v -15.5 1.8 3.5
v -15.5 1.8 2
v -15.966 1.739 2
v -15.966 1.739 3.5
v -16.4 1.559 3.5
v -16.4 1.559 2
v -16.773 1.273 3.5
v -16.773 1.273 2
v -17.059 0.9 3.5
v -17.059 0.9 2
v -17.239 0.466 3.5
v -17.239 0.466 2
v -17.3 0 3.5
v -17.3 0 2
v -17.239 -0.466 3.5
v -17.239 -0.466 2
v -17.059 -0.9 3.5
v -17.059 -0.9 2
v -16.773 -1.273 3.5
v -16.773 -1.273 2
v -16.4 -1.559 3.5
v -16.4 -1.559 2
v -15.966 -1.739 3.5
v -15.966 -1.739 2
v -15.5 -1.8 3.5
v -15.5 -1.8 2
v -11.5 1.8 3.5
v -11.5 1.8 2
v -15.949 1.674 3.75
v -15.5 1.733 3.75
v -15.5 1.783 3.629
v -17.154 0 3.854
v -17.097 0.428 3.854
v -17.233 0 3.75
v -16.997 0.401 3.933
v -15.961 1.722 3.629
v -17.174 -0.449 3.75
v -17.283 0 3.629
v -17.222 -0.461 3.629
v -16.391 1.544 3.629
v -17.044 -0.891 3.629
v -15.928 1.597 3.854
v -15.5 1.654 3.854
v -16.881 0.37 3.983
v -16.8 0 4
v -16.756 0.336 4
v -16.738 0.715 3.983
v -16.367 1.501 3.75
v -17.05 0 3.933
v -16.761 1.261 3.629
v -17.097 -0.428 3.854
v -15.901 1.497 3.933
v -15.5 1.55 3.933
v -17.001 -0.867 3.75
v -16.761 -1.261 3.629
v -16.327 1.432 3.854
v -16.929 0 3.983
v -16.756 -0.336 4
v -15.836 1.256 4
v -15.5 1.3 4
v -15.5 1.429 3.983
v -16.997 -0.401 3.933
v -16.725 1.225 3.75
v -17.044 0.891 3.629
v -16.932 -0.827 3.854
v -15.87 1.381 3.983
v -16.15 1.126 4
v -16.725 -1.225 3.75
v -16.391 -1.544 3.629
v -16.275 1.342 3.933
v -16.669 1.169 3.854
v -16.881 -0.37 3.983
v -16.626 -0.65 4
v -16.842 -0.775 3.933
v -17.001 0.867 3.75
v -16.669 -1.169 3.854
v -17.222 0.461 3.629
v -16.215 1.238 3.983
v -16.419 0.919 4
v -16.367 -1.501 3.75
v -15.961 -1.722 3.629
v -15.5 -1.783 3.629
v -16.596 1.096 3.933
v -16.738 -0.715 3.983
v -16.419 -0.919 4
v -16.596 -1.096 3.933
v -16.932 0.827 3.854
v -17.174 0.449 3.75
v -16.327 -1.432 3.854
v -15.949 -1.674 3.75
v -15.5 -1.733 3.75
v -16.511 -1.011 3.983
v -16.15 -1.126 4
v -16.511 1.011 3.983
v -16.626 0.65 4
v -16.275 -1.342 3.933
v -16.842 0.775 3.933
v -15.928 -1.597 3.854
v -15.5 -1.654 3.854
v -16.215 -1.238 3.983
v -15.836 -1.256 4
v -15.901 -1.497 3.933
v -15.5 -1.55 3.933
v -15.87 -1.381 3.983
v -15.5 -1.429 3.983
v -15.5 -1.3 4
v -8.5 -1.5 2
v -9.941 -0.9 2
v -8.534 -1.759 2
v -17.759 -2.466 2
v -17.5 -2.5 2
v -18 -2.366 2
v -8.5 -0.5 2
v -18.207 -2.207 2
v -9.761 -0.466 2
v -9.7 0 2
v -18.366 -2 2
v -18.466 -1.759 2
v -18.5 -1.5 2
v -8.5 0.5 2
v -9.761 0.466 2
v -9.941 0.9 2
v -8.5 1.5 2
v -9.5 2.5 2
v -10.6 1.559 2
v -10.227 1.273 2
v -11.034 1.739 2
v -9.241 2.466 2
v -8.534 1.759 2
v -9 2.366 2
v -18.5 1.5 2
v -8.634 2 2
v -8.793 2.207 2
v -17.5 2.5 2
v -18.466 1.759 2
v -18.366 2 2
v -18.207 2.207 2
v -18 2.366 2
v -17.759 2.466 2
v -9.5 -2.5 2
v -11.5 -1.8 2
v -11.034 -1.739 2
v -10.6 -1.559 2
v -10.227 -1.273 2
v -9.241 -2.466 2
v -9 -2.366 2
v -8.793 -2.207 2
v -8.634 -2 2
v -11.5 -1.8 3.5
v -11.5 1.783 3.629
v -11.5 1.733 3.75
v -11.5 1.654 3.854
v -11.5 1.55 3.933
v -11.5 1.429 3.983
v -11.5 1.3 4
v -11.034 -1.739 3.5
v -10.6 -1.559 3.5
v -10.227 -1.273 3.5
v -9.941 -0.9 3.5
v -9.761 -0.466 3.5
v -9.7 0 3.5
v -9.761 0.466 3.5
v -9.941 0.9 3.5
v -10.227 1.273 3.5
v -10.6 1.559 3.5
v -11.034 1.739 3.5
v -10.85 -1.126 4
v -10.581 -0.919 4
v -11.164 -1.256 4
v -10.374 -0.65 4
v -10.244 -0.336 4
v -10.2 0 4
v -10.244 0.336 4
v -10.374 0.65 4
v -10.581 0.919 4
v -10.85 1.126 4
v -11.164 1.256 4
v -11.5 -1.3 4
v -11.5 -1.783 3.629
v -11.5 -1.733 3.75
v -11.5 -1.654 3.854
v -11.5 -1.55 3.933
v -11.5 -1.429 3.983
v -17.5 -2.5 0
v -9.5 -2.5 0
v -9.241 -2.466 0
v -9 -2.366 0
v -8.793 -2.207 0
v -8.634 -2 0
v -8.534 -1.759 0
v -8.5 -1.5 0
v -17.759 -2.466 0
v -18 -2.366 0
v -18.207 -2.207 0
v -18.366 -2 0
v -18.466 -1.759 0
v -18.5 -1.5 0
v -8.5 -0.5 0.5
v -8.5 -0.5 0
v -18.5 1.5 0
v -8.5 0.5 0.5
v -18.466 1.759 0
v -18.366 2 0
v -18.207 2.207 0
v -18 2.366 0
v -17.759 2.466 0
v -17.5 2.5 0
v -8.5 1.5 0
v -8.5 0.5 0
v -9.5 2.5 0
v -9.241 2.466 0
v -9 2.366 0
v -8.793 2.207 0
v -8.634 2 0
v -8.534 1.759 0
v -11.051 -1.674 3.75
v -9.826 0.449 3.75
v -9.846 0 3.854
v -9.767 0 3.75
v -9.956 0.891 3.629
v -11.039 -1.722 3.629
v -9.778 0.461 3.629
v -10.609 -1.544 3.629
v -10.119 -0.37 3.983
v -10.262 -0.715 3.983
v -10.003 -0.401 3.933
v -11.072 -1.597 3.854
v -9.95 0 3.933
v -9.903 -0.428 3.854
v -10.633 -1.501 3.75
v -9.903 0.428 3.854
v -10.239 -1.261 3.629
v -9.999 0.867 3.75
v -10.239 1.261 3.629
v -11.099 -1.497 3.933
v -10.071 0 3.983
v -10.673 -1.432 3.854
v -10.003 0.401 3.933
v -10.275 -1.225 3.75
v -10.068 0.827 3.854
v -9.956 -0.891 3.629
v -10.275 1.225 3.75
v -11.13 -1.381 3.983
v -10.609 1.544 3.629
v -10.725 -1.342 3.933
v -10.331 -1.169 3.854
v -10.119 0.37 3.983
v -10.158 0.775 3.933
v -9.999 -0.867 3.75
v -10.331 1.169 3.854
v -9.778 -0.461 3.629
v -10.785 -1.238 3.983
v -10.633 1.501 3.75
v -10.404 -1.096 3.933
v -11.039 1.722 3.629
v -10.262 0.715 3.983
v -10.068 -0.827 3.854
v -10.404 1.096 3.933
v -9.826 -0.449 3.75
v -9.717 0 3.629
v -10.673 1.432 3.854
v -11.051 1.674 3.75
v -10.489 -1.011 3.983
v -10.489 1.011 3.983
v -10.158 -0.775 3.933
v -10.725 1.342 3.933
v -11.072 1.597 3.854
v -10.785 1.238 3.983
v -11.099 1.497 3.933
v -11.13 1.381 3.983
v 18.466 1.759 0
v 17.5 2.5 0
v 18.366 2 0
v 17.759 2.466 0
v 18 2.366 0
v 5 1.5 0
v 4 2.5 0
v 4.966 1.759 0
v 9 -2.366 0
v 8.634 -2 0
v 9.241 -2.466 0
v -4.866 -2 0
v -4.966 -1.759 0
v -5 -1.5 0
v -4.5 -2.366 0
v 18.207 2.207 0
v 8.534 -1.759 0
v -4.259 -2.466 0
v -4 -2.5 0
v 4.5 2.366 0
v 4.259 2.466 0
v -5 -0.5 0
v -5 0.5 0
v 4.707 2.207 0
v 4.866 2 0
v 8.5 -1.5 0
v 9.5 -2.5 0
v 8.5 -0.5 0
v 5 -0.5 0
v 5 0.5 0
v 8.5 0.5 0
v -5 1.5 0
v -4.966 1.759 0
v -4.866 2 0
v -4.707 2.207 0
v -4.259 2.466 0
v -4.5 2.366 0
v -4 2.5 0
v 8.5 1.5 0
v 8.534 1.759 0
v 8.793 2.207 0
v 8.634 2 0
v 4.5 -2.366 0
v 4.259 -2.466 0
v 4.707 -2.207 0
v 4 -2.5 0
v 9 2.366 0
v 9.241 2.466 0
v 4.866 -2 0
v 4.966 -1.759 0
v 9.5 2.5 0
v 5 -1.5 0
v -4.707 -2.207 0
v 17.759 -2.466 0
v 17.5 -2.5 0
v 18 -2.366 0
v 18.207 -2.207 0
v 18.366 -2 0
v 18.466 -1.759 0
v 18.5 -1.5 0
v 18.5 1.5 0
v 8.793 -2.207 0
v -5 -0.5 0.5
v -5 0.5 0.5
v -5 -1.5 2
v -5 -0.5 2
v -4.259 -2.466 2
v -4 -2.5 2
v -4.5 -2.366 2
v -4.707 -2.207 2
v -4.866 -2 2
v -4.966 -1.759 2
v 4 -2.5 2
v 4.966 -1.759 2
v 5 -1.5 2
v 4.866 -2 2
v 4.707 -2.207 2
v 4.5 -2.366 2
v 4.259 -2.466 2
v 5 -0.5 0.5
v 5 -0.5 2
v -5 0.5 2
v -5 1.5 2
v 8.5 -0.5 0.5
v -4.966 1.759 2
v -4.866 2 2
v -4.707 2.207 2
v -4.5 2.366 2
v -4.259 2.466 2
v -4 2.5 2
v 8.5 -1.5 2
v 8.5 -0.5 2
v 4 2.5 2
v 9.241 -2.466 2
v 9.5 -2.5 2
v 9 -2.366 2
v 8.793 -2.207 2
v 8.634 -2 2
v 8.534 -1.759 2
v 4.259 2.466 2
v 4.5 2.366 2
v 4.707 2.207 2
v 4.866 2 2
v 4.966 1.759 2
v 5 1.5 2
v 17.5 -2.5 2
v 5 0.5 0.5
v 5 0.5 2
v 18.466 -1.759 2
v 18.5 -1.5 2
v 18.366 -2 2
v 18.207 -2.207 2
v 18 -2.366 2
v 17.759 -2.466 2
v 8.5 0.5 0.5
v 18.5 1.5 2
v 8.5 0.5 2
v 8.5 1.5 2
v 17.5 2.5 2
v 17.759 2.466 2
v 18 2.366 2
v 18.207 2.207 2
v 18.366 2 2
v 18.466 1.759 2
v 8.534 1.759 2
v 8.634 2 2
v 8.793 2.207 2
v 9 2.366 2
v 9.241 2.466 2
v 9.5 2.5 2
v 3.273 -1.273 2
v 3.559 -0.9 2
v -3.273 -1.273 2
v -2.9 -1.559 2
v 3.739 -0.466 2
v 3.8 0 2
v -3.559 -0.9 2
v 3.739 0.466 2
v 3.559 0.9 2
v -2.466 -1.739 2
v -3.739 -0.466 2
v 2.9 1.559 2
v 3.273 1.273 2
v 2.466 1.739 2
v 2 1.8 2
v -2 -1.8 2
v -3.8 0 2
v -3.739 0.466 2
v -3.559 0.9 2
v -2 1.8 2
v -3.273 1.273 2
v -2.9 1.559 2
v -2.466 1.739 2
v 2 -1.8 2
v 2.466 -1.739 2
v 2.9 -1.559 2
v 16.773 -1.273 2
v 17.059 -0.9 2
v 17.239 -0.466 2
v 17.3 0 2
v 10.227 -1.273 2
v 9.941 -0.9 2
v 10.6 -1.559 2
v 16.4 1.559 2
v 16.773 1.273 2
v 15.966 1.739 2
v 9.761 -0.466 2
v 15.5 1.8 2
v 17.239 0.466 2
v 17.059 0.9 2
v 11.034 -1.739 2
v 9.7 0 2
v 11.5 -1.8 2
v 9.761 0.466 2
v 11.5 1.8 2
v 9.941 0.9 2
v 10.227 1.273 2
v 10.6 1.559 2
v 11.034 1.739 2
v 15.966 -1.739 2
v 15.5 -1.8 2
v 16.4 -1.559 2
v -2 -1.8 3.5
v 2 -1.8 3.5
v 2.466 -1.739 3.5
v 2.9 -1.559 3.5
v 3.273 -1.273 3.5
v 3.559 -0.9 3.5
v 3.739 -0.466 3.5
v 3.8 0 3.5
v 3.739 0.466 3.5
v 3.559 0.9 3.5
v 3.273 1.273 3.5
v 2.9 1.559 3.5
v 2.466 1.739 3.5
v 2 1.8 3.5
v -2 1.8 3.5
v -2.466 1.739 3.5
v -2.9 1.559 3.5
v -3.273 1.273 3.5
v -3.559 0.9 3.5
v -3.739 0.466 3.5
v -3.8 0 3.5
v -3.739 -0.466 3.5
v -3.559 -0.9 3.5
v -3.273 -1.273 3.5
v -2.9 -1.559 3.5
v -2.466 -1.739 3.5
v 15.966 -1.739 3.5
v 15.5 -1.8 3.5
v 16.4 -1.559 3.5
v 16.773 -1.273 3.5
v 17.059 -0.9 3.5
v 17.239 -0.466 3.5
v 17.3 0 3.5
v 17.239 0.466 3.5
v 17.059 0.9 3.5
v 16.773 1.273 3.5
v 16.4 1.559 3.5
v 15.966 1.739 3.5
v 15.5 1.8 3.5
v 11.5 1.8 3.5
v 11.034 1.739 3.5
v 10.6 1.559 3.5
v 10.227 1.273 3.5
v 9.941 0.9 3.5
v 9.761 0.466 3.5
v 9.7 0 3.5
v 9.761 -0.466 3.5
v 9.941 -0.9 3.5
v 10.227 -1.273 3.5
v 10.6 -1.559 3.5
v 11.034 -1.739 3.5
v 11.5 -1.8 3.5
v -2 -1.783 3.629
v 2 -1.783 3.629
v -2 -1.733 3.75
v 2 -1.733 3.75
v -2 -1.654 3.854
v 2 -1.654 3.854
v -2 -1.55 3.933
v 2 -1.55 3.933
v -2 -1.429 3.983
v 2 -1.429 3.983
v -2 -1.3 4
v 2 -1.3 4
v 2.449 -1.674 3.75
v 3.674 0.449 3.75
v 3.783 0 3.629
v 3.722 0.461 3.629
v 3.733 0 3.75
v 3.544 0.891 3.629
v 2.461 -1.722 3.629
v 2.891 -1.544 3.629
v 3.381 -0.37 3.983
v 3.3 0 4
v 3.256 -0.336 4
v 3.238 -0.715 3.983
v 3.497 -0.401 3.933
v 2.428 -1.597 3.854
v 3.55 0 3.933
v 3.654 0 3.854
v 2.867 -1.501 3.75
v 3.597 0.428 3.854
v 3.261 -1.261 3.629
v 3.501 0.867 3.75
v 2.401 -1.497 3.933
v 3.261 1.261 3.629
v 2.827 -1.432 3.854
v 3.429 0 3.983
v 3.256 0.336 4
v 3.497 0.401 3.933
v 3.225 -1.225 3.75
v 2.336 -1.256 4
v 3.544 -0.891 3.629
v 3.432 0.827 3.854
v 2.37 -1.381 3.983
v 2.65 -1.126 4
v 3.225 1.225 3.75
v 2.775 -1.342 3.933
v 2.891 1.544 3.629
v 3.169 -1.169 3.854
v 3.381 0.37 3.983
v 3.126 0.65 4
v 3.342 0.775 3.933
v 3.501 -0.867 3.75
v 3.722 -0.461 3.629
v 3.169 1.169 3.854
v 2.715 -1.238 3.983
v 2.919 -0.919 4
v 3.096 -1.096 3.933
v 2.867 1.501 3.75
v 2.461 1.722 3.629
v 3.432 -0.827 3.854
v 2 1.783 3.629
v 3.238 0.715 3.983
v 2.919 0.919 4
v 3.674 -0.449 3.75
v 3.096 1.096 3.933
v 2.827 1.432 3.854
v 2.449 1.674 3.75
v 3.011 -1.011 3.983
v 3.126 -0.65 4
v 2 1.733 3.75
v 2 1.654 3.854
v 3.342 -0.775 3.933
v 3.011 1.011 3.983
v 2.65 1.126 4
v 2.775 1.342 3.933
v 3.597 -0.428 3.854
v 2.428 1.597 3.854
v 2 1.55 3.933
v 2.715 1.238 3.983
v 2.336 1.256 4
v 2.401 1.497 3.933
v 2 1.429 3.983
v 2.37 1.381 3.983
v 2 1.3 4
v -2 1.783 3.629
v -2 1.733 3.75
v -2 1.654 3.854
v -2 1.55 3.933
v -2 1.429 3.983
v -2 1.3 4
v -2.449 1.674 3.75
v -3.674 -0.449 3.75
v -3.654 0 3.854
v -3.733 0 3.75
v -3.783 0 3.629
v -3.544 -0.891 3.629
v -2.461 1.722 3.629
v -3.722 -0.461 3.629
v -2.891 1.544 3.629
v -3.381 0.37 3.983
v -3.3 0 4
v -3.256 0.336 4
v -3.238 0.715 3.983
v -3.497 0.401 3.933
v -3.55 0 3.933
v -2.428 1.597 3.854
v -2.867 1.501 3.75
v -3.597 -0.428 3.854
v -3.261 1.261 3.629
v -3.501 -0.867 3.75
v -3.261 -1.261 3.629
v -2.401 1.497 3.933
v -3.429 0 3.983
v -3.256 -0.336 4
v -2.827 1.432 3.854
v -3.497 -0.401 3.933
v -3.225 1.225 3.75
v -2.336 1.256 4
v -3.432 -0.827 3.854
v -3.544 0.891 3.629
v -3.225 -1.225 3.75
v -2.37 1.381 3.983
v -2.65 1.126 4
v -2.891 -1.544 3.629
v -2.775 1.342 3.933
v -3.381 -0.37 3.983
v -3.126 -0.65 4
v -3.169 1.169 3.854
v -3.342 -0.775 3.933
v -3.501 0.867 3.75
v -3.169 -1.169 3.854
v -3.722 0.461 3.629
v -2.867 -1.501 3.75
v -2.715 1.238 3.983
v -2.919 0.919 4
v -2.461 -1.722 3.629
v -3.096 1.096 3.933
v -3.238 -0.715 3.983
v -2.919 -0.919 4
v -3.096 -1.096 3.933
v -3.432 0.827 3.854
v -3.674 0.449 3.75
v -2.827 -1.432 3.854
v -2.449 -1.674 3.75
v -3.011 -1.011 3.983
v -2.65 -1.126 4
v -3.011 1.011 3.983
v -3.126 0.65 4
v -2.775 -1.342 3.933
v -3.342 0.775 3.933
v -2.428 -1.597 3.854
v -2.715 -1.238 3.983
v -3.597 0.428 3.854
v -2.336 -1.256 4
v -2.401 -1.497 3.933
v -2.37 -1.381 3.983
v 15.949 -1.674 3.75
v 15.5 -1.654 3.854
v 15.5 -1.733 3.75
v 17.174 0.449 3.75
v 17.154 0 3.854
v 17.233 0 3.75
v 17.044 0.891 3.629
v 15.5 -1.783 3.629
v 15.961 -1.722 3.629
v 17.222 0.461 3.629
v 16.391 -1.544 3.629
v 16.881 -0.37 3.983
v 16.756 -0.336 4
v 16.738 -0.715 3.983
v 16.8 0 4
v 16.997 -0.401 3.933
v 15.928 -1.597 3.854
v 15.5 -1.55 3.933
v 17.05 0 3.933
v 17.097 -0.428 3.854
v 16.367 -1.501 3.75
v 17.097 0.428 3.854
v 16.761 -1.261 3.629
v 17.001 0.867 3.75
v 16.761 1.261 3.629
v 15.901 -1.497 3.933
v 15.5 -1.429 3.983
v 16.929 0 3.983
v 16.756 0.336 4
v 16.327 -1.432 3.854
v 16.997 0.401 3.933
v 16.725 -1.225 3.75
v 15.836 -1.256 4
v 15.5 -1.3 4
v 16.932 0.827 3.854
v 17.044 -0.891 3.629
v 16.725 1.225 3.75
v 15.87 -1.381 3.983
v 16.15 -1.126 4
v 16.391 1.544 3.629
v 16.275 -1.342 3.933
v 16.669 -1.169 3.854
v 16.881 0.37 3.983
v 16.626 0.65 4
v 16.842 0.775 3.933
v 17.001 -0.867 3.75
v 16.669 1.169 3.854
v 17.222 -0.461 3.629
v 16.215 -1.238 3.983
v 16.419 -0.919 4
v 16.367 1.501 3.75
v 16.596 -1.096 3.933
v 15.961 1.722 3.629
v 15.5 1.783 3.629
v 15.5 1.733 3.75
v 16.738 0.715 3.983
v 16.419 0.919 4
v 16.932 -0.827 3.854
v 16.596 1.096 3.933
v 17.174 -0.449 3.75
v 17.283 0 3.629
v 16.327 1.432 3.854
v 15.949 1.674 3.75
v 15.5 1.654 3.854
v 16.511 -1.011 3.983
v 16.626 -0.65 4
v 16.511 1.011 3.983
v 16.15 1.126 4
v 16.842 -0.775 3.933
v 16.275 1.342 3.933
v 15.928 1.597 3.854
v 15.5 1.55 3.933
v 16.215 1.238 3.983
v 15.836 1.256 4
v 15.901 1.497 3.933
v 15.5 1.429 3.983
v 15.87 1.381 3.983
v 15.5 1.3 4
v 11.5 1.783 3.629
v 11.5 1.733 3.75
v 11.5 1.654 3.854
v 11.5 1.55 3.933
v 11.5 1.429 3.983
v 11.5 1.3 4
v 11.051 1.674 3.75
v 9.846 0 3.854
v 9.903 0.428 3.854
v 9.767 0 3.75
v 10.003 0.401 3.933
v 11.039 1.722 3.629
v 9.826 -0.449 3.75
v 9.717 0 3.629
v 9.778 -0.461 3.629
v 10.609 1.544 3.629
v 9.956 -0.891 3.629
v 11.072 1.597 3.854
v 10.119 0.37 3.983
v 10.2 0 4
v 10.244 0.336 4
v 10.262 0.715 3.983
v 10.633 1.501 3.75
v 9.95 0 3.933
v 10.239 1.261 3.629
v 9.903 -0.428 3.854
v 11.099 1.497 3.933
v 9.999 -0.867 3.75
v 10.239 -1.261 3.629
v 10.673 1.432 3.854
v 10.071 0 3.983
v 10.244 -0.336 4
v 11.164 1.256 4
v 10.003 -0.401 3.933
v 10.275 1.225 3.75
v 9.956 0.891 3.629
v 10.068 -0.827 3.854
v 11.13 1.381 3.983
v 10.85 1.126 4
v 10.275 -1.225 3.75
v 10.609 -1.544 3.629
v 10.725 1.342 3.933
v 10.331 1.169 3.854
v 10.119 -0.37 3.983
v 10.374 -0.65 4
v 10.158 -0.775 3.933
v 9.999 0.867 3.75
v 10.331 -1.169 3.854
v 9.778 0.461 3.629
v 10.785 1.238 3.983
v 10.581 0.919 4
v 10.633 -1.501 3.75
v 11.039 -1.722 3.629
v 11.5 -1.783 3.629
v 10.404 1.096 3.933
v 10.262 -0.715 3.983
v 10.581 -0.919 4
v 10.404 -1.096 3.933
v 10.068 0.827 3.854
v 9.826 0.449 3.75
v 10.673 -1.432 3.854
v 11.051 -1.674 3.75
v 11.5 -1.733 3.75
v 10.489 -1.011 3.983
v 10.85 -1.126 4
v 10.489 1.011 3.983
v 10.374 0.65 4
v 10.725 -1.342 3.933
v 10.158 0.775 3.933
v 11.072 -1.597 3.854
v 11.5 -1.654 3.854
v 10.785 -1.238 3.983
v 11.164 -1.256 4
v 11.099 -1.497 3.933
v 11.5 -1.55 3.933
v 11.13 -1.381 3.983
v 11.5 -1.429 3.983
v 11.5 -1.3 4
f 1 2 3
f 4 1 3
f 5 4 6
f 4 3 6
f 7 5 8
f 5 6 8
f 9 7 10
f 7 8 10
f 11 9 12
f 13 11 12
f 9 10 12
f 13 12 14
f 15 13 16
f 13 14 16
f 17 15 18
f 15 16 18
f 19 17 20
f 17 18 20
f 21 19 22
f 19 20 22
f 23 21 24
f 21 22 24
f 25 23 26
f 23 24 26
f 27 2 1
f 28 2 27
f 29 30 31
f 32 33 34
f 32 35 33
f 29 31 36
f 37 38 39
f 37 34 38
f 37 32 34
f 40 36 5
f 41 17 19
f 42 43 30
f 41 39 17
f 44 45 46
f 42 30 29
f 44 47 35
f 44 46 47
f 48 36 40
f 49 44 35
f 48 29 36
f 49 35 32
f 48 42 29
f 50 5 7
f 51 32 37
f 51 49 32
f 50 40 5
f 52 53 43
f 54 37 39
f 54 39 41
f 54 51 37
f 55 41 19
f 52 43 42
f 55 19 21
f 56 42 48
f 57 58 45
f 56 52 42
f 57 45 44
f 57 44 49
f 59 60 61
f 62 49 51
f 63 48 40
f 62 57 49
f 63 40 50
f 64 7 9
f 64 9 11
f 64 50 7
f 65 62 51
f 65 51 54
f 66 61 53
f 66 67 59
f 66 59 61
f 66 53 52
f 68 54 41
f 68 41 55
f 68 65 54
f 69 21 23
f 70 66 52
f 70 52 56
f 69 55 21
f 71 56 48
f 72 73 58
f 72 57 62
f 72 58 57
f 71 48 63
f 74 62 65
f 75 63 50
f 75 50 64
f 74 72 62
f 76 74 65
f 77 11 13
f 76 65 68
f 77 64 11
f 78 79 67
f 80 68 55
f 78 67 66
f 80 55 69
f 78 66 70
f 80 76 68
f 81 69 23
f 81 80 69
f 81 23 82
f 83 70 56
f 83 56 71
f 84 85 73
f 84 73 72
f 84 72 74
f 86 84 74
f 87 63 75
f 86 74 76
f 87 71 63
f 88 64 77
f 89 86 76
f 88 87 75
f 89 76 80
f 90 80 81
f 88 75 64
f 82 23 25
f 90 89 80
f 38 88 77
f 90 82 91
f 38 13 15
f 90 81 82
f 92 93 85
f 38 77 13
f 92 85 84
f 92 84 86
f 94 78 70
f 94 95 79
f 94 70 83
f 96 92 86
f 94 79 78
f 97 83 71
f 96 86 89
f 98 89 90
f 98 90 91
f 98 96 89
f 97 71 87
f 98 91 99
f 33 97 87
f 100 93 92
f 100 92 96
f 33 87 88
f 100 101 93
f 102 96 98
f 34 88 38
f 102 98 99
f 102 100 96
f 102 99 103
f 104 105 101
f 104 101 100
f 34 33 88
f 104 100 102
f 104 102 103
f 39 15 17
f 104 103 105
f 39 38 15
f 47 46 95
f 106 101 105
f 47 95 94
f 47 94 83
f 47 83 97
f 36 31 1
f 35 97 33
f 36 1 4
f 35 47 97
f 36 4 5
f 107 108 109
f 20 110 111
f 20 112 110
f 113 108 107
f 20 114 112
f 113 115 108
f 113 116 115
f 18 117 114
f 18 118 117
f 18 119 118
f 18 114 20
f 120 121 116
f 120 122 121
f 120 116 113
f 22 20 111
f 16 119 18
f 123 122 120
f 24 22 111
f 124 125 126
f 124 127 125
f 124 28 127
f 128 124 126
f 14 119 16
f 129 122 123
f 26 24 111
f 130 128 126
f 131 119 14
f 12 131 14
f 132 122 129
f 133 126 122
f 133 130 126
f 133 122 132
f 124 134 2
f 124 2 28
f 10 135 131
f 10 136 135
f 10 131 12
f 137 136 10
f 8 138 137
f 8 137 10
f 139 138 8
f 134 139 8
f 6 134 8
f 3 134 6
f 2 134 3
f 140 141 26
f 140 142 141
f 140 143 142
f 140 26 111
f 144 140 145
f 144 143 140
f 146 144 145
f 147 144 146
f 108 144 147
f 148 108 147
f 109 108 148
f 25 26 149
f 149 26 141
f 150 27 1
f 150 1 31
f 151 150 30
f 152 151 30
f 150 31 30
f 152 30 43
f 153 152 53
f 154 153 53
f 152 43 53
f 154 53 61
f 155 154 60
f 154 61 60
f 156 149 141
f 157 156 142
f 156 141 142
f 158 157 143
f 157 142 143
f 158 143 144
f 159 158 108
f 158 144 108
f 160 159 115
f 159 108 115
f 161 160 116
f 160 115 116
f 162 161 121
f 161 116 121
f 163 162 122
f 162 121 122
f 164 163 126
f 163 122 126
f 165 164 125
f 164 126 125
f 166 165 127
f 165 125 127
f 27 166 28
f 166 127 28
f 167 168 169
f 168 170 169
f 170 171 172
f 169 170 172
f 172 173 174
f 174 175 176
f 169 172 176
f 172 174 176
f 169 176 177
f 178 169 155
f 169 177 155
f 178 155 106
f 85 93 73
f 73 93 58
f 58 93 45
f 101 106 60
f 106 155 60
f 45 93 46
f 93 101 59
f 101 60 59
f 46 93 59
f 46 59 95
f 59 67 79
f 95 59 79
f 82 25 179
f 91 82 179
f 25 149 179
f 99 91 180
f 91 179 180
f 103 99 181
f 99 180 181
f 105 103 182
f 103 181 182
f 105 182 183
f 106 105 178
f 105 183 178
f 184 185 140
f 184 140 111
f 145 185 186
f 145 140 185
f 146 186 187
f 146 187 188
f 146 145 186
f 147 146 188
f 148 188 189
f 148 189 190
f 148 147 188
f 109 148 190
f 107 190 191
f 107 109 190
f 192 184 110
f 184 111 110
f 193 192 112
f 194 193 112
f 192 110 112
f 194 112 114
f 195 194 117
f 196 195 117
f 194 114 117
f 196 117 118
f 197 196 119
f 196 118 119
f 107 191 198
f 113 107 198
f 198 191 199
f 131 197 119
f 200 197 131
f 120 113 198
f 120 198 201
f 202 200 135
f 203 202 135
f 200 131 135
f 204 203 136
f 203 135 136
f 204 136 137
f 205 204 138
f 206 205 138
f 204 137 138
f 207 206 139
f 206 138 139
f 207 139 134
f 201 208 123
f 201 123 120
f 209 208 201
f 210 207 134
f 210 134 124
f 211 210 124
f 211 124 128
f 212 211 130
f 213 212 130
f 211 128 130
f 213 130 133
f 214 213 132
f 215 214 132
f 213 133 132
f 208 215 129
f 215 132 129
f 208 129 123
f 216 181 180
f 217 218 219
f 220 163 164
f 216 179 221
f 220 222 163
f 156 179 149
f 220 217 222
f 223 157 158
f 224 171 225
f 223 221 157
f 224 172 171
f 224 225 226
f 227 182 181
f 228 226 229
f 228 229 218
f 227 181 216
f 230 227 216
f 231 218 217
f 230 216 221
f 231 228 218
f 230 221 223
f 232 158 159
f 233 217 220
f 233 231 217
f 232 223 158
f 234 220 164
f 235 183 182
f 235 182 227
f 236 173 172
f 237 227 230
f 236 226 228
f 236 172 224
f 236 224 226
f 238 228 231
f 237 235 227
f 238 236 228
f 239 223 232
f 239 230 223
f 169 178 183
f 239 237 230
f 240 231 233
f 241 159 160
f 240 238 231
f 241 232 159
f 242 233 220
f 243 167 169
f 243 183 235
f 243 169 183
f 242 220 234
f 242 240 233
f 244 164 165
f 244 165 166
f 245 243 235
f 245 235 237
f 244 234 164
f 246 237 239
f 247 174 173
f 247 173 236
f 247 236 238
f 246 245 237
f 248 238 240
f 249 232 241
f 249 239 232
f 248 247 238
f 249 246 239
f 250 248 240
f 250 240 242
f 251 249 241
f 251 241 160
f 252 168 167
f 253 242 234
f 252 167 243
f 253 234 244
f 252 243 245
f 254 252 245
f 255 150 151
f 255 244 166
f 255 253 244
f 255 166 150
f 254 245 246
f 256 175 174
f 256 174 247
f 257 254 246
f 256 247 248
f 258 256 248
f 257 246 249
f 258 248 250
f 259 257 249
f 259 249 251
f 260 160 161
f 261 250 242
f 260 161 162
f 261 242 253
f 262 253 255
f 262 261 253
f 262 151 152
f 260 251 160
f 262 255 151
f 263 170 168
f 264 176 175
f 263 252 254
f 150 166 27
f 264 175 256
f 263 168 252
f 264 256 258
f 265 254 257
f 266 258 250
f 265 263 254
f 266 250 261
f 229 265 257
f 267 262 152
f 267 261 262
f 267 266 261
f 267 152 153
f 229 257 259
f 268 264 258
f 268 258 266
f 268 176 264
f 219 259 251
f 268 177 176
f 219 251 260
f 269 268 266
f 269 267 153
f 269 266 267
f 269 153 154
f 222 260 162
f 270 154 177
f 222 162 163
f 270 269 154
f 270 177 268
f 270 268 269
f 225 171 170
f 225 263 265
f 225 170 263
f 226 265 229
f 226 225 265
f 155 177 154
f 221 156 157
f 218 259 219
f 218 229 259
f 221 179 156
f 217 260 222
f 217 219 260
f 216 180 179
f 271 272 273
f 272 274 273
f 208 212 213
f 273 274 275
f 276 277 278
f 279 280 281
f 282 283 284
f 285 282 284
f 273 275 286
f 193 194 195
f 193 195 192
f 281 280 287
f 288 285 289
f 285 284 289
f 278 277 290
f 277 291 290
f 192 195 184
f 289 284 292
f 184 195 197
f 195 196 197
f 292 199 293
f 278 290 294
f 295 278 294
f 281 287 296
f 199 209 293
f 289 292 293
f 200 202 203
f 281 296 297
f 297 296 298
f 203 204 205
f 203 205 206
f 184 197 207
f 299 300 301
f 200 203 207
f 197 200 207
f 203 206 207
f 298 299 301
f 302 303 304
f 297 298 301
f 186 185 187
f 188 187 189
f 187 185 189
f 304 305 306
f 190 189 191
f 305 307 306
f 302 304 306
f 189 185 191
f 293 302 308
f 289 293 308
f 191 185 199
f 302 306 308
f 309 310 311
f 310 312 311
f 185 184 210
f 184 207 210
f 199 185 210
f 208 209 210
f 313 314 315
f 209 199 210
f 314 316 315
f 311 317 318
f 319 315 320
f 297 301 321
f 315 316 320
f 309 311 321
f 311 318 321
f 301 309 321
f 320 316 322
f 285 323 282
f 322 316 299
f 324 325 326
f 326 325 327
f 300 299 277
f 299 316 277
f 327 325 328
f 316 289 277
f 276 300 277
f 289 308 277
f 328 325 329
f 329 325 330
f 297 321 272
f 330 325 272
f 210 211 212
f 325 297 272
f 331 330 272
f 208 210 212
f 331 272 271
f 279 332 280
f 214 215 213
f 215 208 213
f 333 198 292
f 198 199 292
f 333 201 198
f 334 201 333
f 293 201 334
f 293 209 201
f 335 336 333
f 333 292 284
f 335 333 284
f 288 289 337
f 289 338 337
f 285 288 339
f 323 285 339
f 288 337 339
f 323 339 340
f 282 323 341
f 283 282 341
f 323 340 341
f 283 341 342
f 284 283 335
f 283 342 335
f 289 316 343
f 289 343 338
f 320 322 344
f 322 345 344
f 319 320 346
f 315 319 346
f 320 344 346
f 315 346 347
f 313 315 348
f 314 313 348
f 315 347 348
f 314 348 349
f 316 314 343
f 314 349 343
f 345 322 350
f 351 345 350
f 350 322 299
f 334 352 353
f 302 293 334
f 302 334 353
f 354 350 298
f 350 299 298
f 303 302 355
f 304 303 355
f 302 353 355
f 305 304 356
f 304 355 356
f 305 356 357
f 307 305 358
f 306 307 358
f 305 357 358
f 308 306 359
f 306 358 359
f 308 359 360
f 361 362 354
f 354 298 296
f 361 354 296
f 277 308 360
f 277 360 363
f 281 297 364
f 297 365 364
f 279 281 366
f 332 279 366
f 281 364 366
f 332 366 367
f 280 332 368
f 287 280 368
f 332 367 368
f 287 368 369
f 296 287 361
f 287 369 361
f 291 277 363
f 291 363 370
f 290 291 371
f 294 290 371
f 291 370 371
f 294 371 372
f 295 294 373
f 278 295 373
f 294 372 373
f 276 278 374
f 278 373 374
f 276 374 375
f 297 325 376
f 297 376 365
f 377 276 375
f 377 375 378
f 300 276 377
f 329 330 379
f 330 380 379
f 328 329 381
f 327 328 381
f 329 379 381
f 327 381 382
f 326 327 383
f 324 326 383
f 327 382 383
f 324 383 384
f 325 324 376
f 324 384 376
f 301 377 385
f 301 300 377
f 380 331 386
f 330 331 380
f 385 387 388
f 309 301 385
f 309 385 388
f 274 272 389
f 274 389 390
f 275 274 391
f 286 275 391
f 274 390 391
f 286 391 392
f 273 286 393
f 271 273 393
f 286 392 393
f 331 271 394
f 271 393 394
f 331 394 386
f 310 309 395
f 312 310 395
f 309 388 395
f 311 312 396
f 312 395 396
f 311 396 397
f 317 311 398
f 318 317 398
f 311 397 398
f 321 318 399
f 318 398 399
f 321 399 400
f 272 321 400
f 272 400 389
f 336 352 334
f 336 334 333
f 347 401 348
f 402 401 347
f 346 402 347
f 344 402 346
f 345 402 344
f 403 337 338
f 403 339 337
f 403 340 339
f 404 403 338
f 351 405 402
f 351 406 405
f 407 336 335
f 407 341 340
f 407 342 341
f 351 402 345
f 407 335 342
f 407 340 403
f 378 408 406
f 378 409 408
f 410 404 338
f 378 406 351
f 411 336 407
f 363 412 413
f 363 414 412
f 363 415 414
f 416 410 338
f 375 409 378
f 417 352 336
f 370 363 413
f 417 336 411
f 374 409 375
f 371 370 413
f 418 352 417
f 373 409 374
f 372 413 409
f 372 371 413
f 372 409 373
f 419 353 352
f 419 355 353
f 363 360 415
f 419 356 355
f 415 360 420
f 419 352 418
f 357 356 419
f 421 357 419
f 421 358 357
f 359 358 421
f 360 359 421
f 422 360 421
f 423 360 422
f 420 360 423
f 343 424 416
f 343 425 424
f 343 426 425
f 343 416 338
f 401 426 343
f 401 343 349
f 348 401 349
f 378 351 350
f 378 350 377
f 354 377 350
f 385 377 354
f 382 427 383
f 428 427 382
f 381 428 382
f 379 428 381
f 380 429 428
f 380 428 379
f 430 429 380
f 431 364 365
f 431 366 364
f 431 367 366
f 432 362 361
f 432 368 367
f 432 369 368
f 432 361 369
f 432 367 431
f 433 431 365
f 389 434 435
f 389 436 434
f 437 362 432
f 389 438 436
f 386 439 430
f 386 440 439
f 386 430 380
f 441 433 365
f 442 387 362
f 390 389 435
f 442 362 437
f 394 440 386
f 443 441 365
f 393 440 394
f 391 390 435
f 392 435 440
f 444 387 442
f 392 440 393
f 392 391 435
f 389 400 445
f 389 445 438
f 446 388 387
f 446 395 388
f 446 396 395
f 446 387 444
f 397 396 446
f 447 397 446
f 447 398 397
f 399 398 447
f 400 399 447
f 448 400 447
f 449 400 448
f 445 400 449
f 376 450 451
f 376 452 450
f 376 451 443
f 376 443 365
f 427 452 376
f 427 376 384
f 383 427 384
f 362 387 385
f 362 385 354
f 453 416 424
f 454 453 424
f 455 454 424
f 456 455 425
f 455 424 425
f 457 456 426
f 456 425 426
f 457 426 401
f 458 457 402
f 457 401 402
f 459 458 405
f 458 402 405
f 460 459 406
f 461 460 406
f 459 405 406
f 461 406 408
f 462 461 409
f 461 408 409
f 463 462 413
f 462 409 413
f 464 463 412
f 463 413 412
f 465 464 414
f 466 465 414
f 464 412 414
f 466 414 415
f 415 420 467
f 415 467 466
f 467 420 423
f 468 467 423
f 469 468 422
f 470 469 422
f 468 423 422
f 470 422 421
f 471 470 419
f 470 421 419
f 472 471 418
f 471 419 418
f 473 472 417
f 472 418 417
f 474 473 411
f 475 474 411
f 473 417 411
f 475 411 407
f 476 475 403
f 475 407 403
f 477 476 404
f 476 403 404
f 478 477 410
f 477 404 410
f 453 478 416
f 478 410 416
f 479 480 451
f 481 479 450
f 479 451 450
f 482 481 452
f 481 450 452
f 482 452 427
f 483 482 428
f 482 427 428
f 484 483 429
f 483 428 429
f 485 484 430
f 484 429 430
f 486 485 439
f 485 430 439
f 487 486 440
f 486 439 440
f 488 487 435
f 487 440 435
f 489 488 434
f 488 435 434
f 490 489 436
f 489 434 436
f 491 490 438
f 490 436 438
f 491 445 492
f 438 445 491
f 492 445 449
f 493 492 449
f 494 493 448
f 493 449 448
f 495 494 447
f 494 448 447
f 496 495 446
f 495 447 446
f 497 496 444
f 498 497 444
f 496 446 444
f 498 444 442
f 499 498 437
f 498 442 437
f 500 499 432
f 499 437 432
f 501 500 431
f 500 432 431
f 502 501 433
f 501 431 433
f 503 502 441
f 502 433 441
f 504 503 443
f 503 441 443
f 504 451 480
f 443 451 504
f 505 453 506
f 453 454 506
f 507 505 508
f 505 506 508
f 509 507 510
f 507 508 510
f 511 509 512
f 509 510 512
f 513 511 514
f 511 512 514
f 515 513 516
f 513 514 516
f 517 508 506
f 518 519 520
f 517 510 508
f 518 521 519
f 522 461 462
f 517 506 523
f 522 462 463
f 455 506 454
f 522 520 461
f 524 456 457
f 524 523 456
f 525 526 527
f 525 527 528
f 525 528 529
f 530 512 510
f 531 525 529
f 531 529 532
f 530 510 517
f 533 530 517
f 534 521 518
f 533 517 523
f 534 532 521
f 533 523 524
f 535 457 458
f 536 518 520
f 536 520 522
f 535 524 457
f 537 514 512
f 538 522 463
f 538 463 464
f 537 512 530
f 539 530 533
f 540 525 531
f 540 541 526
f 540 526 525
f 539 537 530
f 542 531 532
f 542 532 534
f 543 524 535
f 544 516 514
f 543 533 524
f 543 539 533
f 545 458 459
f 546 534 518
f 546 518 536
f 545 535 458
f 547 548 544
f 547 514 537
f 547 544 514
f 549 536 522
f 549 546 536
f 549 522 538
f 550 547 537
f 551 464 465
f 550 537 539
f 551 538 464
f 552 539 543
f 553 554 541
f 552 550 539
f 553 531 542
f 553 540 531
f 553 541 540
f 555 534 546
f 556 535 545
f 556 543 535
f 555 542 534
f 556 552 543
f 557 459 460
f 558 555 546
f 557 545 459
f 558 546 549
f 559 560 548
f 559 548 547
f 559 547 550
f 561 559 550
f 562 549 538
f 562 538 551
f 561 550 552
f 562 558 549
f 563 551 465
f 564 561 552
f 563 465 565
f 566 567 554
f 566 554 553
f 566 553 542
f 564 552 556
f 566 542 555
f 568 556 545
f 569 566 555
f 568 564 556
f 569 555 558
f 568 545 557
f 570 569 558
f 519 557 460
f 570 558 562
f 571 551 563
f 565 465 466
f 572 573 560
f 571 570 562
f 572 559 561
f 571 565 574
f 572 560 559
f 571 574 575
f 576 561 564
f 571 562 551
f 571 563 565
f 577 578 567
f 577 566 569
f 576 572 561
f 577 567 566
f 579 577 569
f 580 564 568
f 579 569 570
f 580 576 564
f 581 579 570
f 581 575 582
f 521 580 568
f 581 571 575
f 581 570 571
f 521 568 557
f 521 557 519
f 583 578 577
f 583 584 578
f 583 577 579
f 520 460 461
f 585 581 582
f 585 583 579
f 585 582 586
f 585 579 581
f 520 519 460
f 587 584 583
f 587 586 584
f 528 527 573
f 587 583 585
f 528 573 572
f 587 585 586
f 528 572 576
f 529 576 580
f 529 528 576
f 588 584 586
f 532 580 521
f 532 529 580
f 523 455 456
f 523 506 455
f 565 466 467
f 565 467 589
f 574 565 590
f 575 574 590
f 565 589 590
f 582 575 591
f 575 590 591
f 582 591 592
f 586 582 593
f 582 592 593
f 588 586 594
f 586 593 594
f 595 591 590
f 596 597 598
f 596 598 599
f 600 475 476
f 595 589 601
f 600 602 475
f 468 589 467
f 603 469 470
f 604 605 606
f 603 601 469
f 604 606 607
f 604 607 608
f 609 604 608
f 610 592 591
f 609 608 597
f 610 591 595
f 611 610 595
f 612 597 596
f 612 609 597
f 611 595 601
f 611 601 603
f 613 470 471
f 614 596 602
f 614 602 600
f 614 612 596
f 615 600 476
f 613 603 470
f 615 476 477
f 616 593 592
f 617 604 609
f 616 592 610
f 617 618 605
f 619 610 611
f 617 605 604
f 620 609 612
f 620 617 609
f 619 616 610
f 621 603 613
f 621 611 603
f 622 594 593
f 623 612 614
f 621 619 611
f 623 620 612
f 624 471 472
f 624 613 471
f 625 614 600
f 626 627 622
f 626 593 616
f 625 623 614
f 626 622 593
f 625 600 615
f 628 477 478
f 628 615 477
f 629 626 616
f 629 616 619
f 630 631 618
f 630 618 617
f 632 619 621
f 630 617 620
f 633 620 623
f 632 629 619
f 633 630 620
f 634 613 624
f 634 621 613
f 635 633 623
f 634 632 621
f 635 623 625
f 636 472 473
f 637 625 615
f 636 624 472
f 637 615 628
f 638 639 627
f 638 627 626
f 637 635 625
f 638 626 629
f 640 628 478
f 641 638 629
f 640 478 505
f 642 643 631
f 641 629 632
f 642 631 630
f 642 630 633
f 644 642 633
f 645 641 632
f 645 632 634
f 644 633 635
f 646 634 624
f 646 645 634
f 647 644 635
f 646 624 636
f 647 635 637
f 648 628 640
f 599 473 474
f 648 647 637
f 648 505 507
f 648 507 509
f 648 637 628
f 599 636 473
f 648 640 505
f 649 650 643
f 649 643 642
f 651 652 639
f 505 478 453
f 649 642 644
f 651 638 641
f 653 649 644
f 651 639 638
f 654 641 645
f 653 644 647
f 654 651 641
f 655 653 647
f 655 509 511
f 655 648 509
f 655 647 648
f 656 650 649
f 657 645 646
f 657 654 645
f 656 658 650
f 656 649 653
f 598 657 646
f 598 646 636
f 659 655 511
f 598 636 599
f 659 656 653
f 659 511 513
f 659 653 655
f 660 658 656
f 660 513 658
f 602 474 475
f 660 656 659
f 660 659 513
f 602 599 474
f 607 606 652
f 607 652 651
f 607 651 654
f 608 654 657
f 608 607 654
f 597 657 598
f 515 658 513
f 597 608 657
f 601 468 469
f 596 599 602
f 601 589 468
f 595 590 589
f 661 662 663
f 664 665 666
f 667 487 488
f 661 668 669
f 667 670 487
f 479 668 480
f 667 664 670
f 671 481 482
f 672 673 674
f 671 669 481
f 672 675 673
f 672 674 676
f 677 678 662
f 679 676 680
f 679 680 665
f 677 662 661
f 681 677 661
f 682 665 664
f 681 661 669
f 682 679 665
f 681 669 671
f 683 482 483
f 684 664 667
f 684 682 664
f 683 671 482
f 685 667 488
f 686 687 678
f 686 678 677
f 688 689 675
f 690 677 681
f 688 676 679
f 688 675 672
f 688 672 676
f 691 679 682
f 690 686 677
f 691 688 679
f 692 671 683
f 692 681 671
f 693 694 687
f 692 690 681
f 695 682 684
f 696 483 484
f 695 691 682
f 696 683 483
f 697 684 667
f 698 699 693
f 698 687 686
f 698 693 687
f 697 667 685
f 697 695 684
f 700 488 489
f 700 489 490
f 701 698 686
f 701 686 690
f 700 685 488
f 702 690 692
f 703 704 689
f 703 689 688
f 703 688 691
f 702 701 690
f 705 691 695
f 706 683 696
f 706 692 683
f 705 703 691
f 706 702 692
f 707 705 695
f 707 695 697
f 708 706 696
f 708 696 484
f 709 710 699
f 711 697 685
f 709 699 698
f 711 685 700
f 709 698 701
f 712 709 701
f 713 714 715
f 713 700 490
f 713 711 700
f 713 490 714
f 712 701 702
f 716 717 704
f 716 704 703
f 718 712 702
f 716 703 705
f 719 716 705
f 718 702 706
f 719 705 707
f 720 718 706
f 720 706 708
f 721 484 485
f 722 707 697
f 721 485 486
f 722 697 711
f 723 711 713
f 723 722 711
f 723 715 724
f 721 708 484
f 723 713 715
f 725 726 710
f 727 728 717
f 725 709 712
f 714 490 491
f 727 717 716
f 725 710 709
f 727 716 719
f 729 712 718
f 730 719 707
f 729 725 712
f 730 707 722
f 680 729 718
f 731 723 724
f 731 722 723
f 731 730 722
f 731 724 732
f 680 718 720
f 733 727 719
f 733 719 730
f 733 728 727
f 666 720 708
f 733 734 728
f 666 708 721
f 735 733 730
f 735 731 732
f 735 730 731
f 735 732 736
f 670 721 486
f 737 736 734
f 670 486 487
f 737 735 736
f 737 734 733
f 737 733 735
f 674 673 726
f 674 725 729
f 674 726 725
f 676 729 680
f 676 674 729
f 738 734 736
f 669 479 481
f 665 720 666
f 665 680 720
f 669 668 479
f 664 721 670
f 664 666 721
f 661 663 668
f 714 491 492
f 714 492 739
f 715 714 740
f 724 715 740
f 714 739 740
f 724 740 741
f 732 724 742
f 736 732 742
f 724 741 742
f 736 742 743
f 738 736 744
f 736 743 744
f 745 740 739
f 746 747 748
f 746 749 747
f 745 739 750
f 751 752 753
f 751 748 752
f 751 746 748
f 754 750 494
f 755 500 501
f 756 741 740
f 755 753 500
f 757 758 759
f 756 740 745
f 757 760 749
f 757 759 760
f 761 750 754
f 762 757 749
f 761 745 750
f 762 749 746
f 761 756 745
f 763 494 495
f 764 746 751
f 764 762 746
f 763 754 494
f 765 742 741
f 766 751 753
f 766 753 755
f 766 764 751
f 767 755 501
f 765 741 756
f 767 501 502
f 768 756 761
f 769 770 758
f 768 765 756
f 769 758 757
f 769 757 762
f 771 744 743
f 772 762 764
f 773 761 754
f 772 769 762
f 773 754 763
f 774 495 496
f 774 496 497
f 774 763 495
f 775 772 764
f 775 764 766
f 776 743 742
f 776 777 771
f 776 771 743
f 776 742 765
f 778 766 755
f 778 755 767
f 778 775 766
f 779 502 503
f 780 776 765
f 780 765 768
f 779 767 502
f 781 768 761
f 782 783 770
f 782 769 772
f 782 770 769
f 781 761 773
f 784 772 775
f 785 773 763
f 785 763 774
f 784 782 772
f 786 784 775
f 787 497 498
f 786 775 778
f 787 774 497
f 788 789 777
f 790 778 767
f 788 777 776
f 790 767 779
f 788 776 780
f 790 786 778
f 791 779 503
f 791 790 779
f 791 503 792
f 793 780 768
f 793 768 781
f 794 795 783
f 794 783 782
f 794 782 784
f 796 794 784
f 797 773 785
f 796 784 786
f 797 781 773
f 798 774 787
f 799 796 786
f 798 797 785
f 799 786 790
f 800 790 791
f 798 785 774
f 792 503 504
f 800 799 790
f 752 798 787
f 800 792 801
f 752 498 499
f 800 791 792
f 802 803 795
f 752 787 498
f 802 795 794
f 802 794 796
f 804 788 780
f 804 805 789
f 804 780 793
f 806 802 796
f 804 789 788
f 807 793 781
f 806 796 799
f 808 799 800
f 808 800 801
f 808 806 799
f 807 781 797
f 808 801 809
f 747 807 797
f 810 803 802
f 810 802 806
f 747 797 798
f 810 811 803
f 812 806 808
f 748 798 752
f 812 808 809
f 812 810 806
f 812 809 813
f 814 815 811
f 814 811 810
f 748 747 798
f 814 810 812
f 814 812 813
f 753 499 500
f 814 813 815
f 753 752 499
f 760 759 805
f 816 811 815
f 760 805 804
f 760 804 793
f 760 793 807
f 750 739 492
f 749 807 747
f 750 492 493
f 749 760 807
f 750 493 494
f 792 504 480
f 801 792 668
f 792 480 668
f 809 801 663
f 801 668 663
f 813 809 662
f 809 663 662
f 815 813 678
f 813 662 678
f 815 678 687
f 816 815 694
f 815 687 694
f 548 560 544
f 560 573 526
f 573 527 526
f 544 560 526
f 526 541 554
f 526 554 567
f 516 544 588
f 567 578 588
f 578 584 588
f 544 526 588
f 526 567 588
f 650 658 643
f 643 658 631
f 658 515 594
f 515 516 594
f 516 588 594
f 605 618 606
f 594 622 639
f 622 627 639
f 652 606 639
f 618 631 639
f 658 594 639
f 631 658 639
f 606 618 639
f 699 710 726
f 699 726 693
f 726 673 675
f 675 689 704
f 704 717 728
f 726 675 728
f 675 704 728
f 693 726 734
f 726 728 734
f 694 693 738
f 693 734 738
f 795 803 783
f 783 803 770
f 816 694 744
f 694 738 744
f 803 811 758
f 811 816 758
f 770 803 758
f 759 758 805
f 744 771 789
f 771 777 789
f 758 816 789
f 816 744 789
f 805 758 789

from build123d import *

# Parameters (mm, degrees)
PAD_DEPTH    = 2
FILLET_R     = 1
SKETCH001_W  = 3.5
SKETCH001_H  = 1
POCKET_DEPTH = 1.5
PAD001_DEPTH = 2
FILLET001_R  = 0.5


with BuildPart() as part:
    # Sketch → Pad (new body)
    with BuildSketch(Plane.XY):
        Polygon((-18.5, 2.5), (-8.5, 2.5), (-8.5, 0.5), (-5, 0.5), (-5, 2.5), (5, 2.5), (5, 0.5), (8.5, 0.5), (8.5, 2.5), (18.5, 2.5), (18.5, -2.5), (8.5, -2.5), (8.5, -0.5), (5, -0.5), (5, -2.5), (-5, -2.5), (-5, -0.5), (-8.5, -0.5), (-8.5, -2.5), (-18.5, -2.5), align=None)
    extrude(amount=PAD_DEPTH)

    # Fillet
    fillet_edges = [part.edges().sort_by_distance(p)[0] for p in [
        (-18.5, 2.5, 1),
        (-5, 2.5, 1),
        (8.5, 2.5, 1),
        (-18.5, -2.5, 1),
        (-5, -2.5, 1),
        (8.5, -2.5, 1),
        (-8.5, 2.5, 1),
        (-8.5, -2.5, 1),
        (5, 2.5, 1),
        (5, -2.5, 1),
        (18.5, 2.5, 1),
        (18.5, -2.5, 1),
    ]]
    fillet(fillet_edges, radius=FILLET_R)

    # Sketch001 → Pocket (cut)
    with BuildSketch(Plane.XY.offset(2)):
        with Locations((-6.75, 0)):
            Rectangle(SKETCH001_W, SKETCH001_H)
        with Locations((6.75, 0)):
            Rectangle(SKETCH001_W, SKETCH001_H)
    extrude(amount=-POCKET_DEPTH, mode=Mode.SUBTRACT)

    # Sketch002 → Pad001 (new body)
    with BuildSketch(Plane.XY.offset(2)):
        with BuildLine():
            ThreePointArc((-15.5, 1.8), (-17.3, 0), (-15.5, -1.8))
            Line((-15.5, -1.8), (-11.5, -1.8))
            ThreePointArc((-11.5, -1.8), (-9.7, 0), (-11.5, 1.8))
            Line((-15.5, 1.8), (-11.5, 1.8))
        make_face()
        with BuildLine():
            ThreePointArc((-2, 1.8), (-3.8, 0), (-2, -1.8))
            Line((-2, -1.8), (2, -1.8))
            ThreePointArc((2, -1.8), (3.8, 0), (2, 1.8))
            Line((-2, 1.8), (2, 1.8))
        make_face()
        with BuildLine():
            ThreePointArc((11.5, 1.8), (9.7, 0), (11.5, -1.8))
            Line((15.5, -1.8), (11.5, -1.8))
            ThreePointArc((15.5, -1.8), (17.3, 0), (15.5, 1.8))
            Line((11.5, 1.8), (15.5, 1.8))
        make_face()
    extrude(amount=PAD001_DEPTH)

    # Fillet001
    fillet001_edges = [part.edges().sort_by_distance(p)[0] for p in [
        (-17.3, 0, 4),
        (-13.5, -1.8, 4),
        (-9.7, 0, 4),
        (-13.5, 1.8, 4),
        (-3.8, 0, 4),
        (0, -1.8, 4),
        (3.8, 0, 4),
        (0, 1.8, 4),
        (17.3, 0, 4),
        (13.5, 1.8, 4),
        (9.7, 0, 4),
        (13.5, -1.8, 4),
    ]]
    fillet(fillet001_edges, radius=FILLET001_R)


solid = part.part
